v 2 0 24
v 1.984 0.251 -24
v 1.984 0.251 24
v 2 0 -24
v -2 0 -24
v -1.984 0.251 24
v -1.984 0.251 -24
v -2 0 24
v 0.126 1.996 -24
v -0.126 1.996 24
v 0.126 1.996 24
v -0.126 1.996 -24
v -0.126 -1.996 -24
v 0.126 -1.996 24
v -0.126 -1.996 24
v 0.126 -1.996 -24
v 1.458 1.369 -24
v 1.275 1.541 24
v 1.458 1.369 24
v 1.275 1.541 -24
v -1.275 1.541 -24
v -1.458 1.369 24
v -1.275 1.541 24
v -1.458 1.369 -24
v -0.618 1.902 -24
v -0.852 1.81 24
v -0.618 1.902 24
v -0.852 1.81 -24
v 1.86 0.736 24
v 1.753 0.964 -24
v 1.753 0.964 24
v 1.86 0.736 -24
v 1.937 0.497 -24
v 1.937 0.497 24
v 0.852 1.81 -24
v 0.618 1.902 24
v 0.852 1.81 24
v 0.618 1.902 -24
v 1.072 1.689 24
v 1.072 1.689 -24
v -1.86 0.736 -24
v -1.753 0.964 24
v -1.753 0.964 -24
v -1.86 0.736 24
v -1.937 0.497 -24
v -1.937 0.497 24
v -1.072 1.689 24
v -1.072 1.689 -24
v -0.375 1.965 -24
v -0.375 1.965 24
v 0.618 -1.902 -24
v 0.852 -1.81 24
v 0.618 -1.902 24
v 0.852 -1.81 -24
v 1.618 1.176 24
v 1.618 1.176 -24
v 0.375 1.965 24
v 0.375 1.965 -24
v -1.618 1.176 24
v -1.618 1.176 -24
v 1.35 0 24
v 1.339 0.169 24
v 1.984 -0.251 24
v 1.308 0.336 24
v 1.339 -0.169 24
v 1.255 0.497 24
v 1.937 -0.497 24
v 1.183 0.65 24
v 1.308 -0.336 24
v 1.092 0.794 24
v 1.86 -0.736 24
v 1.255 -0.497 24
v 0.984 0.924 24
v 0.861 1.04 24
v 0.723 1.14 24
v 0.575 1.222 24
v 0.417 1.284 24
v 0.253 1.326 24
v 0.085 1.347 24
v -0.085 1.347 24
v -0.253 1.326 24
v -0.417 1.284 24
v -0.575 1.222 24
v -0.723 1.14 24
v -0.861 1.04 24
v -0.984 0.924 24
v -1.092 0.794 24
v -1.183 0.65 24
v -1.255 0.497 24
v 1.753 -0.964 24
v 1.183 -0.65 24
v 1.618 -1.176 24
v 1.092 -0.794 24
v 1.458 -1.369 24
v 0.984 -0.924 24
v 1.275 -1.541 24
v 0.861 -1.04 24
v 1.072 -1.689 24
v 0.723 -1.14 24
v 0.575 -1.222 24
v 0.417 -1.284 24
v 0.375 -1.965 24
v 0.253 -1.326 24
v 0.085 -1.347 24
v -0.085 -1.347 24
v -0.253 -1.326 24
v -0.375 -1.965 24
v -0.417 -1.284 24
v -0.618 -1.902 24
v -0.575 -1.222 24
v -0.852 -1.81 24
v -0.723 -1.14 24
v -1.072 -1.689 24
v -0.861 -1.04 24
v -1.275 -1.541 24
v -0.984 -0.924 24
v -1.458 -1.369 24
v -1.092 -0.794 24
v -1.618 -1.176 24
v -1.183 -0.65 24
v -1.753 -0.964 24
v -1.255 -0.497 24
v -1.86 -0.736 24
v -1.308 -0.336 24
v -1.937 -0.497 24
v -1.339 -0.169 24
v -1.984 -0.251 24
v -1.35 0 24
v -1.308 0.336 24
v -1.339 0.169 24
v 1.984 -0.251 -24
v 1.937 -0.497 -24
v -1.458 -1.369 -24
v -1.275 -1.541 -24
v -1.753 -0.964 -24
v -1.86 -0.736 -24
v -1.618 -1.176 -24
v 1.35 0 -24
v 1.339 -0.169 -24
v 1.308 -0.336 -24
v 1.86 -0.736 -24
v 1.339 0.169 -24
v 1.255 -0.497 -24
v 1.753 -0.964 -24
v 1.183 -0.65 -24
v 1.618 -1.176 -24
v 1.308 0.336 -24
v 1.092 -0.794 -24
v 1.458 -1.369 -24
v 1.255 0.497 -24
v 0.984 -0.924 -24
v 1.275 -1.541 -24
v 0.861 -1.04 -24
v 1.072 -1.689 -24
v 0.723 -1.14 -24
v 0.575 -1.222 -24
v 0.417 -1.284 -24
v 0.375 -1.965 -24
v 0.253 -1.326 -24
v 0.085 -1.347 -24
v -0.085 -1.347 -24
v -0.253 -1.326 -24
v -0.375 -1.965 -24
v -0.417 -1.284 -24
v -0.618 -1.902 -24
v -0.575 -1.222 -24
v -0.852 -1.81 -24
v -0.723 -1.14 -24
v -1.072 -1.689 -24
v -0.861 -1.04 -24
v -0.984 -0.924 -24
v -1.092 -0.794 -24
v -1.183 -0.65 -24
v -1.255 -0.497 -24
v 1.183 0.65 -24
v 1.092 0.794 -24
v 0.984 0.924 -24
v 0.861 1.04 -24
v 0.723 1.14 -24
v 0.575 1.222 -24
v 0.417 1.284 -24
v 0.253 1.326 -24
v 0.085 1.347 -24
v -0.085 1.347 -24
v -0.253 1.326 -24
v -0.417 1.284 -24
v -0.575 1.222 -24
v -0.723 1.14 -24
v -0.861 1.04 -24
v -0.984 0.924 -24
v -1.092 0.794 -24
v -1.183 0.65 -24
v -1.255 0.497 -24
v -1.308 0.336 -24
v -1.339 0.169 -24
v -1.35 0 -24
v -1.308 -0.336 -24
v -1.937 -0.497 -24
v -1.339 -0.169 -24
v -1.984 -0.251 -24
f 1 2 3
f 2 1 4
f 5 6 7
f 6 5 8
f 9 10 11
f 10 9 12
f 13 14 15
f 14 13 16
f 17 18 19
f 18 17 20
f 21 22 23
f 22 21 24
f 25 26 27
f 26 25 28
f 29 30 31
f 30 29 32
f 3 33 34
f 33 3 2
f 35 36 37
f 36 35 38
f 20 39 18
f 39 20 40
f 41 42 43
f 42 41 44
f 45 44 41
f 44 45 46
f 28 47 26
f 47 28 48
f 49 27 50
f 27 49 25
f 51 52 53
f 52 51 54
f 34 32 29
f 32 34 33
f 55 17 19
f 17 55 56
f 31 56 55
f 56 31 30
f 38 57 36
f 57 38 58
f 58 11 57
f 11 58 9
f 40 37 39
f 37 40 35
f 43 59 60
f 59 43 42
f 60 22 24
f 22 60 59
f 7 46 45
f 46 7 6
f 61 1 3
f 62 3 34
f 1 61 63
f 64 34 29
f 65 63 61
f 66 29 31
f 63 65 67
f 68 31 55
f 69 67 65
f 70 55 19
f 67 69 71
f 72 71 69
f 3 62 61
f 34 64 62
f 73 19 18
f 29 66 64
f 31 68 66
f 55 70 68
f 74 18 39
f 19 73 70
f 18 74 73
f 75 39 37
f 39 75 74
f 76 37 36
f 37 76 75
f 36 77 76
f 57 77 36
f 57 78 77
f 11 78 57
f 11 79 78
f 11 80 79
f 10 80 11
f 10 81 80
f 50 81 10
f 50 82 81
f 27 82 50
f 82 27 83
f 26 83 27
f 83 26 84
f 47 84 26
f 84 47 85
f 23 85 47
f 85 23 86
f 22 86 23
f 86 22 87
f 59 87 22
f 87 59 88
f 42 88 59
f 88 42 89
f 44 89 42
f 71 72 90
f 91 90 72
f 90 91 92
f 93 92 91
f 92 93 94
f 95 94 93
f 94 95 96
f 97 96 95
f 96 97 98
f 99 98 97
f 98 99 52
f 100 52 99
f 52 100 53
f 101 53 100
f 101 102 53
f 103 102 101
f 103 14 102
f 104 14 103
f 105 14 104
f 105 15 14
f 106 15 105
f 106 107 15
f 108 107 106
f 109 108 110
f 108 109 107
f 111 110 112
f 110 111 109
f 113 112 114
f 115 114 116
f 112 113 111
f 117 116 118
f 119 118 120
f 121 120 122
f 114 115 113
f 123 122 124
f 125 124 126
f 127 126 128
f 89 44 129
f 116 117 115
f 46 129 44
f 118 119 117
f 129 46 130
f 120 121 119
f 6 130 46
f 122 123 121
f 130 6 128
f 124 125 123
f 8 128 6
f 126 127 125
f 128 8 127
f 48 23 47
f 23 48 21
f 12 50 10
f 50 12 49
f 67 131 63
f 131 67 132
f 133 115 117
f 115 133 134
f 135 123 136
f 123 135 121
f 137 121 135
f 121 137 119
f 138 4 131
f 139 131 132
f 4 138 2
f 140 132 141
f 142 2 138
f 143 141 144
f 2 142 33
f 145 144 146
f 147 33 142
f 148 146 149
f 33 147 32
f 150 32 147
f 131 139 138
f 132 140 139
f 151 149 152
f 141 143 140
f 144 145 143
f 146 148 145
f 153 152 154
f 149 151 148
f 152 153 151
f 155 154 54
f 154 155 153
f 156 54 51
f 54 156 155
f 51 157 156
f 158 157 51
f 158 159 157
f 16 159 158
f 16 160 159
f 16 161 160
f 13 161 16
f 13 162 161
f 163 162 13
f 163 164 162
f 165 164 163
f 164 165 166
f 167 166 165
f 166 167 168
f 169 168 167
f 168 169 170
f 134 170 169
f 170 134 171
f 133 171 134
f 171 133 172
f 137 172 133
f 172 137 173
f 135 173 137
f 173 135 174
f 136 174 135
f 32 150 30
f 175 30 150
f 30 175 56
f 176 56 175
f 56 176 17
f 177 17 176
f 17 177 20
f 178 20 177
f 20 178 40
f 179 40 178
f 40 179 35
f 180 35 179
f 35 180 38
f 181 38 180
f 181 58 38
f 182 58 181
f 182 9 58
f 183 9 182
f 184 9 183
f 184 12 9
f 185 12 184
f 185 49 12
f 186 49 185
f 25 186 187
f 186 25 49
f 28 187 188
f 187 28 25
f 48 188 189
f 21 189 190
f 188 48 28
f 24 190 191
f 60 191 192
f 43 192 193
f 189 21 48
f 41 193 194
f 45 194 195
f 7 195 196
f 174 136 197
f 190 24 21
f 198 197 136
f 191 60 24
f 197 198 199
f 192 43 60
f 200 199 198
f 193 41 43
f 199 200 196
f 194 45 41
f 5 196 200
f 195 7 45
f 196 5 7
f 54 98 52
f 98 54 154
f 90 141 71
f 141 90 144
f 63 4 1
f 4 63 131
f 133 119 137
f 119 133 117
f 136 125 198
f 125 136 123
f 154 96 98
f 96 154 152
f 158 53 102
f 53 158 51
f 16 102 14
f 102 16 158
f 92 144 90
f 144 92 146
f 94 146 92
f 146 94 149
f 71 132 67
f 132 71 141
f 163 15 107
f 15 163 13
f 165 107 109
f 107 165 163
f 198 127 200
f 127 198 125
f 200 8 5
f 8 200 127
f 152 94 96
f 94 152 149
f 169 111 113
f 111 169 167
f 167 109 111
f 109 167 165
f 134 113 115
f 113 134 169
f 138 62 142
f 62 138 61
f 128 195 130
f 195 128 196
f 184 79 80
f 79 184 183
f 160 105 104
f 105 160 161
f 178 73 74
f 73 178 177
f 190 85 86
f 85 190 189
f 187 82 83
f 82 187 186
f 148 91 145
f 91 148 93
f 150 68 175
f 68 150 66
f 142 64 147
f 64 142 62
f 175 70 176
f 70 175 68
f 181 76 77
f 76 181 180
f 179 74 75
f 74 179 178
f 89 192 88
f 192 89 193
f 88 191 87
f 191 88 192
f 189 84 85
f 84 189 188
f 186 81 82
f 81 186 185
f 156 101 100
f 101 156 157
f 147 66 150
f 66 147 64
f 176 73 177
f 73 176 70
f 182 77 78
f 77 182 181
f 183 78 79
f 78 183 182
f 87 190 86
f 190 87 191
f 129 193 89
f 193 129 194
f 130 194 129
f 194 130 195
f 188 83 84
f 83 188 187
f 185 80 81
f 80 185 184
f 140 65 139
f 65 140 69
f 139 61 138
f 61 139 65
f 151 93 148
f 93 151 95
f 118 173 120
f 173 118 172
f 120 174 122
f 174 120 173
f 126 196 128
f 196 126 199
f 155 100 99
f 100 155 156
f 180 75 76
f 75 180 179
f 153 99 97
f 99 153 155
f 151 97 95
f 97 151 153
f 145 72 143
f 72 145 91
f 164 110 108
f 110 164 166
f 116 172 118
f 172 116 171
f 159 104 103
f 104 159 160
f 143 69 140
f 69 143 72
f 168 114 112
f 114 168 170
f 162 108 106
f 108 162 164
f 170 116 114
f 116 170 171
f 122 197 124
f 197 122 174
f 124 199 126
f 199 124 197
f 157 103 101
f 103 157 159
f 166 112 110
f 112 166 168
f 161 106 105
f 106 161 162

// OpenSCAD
$fn = 50;


difference() {
	union() {
		translate(v = [0, 0, -24.0000000000]) {
			cylinder(h = 48, r = 2.0000000000);
		}
	}
	union() {
		translate(v = [0, 0, -100.0000000000]) {
			cylinder(h = 200, r = 1.3500000000);
		}
	}
}
